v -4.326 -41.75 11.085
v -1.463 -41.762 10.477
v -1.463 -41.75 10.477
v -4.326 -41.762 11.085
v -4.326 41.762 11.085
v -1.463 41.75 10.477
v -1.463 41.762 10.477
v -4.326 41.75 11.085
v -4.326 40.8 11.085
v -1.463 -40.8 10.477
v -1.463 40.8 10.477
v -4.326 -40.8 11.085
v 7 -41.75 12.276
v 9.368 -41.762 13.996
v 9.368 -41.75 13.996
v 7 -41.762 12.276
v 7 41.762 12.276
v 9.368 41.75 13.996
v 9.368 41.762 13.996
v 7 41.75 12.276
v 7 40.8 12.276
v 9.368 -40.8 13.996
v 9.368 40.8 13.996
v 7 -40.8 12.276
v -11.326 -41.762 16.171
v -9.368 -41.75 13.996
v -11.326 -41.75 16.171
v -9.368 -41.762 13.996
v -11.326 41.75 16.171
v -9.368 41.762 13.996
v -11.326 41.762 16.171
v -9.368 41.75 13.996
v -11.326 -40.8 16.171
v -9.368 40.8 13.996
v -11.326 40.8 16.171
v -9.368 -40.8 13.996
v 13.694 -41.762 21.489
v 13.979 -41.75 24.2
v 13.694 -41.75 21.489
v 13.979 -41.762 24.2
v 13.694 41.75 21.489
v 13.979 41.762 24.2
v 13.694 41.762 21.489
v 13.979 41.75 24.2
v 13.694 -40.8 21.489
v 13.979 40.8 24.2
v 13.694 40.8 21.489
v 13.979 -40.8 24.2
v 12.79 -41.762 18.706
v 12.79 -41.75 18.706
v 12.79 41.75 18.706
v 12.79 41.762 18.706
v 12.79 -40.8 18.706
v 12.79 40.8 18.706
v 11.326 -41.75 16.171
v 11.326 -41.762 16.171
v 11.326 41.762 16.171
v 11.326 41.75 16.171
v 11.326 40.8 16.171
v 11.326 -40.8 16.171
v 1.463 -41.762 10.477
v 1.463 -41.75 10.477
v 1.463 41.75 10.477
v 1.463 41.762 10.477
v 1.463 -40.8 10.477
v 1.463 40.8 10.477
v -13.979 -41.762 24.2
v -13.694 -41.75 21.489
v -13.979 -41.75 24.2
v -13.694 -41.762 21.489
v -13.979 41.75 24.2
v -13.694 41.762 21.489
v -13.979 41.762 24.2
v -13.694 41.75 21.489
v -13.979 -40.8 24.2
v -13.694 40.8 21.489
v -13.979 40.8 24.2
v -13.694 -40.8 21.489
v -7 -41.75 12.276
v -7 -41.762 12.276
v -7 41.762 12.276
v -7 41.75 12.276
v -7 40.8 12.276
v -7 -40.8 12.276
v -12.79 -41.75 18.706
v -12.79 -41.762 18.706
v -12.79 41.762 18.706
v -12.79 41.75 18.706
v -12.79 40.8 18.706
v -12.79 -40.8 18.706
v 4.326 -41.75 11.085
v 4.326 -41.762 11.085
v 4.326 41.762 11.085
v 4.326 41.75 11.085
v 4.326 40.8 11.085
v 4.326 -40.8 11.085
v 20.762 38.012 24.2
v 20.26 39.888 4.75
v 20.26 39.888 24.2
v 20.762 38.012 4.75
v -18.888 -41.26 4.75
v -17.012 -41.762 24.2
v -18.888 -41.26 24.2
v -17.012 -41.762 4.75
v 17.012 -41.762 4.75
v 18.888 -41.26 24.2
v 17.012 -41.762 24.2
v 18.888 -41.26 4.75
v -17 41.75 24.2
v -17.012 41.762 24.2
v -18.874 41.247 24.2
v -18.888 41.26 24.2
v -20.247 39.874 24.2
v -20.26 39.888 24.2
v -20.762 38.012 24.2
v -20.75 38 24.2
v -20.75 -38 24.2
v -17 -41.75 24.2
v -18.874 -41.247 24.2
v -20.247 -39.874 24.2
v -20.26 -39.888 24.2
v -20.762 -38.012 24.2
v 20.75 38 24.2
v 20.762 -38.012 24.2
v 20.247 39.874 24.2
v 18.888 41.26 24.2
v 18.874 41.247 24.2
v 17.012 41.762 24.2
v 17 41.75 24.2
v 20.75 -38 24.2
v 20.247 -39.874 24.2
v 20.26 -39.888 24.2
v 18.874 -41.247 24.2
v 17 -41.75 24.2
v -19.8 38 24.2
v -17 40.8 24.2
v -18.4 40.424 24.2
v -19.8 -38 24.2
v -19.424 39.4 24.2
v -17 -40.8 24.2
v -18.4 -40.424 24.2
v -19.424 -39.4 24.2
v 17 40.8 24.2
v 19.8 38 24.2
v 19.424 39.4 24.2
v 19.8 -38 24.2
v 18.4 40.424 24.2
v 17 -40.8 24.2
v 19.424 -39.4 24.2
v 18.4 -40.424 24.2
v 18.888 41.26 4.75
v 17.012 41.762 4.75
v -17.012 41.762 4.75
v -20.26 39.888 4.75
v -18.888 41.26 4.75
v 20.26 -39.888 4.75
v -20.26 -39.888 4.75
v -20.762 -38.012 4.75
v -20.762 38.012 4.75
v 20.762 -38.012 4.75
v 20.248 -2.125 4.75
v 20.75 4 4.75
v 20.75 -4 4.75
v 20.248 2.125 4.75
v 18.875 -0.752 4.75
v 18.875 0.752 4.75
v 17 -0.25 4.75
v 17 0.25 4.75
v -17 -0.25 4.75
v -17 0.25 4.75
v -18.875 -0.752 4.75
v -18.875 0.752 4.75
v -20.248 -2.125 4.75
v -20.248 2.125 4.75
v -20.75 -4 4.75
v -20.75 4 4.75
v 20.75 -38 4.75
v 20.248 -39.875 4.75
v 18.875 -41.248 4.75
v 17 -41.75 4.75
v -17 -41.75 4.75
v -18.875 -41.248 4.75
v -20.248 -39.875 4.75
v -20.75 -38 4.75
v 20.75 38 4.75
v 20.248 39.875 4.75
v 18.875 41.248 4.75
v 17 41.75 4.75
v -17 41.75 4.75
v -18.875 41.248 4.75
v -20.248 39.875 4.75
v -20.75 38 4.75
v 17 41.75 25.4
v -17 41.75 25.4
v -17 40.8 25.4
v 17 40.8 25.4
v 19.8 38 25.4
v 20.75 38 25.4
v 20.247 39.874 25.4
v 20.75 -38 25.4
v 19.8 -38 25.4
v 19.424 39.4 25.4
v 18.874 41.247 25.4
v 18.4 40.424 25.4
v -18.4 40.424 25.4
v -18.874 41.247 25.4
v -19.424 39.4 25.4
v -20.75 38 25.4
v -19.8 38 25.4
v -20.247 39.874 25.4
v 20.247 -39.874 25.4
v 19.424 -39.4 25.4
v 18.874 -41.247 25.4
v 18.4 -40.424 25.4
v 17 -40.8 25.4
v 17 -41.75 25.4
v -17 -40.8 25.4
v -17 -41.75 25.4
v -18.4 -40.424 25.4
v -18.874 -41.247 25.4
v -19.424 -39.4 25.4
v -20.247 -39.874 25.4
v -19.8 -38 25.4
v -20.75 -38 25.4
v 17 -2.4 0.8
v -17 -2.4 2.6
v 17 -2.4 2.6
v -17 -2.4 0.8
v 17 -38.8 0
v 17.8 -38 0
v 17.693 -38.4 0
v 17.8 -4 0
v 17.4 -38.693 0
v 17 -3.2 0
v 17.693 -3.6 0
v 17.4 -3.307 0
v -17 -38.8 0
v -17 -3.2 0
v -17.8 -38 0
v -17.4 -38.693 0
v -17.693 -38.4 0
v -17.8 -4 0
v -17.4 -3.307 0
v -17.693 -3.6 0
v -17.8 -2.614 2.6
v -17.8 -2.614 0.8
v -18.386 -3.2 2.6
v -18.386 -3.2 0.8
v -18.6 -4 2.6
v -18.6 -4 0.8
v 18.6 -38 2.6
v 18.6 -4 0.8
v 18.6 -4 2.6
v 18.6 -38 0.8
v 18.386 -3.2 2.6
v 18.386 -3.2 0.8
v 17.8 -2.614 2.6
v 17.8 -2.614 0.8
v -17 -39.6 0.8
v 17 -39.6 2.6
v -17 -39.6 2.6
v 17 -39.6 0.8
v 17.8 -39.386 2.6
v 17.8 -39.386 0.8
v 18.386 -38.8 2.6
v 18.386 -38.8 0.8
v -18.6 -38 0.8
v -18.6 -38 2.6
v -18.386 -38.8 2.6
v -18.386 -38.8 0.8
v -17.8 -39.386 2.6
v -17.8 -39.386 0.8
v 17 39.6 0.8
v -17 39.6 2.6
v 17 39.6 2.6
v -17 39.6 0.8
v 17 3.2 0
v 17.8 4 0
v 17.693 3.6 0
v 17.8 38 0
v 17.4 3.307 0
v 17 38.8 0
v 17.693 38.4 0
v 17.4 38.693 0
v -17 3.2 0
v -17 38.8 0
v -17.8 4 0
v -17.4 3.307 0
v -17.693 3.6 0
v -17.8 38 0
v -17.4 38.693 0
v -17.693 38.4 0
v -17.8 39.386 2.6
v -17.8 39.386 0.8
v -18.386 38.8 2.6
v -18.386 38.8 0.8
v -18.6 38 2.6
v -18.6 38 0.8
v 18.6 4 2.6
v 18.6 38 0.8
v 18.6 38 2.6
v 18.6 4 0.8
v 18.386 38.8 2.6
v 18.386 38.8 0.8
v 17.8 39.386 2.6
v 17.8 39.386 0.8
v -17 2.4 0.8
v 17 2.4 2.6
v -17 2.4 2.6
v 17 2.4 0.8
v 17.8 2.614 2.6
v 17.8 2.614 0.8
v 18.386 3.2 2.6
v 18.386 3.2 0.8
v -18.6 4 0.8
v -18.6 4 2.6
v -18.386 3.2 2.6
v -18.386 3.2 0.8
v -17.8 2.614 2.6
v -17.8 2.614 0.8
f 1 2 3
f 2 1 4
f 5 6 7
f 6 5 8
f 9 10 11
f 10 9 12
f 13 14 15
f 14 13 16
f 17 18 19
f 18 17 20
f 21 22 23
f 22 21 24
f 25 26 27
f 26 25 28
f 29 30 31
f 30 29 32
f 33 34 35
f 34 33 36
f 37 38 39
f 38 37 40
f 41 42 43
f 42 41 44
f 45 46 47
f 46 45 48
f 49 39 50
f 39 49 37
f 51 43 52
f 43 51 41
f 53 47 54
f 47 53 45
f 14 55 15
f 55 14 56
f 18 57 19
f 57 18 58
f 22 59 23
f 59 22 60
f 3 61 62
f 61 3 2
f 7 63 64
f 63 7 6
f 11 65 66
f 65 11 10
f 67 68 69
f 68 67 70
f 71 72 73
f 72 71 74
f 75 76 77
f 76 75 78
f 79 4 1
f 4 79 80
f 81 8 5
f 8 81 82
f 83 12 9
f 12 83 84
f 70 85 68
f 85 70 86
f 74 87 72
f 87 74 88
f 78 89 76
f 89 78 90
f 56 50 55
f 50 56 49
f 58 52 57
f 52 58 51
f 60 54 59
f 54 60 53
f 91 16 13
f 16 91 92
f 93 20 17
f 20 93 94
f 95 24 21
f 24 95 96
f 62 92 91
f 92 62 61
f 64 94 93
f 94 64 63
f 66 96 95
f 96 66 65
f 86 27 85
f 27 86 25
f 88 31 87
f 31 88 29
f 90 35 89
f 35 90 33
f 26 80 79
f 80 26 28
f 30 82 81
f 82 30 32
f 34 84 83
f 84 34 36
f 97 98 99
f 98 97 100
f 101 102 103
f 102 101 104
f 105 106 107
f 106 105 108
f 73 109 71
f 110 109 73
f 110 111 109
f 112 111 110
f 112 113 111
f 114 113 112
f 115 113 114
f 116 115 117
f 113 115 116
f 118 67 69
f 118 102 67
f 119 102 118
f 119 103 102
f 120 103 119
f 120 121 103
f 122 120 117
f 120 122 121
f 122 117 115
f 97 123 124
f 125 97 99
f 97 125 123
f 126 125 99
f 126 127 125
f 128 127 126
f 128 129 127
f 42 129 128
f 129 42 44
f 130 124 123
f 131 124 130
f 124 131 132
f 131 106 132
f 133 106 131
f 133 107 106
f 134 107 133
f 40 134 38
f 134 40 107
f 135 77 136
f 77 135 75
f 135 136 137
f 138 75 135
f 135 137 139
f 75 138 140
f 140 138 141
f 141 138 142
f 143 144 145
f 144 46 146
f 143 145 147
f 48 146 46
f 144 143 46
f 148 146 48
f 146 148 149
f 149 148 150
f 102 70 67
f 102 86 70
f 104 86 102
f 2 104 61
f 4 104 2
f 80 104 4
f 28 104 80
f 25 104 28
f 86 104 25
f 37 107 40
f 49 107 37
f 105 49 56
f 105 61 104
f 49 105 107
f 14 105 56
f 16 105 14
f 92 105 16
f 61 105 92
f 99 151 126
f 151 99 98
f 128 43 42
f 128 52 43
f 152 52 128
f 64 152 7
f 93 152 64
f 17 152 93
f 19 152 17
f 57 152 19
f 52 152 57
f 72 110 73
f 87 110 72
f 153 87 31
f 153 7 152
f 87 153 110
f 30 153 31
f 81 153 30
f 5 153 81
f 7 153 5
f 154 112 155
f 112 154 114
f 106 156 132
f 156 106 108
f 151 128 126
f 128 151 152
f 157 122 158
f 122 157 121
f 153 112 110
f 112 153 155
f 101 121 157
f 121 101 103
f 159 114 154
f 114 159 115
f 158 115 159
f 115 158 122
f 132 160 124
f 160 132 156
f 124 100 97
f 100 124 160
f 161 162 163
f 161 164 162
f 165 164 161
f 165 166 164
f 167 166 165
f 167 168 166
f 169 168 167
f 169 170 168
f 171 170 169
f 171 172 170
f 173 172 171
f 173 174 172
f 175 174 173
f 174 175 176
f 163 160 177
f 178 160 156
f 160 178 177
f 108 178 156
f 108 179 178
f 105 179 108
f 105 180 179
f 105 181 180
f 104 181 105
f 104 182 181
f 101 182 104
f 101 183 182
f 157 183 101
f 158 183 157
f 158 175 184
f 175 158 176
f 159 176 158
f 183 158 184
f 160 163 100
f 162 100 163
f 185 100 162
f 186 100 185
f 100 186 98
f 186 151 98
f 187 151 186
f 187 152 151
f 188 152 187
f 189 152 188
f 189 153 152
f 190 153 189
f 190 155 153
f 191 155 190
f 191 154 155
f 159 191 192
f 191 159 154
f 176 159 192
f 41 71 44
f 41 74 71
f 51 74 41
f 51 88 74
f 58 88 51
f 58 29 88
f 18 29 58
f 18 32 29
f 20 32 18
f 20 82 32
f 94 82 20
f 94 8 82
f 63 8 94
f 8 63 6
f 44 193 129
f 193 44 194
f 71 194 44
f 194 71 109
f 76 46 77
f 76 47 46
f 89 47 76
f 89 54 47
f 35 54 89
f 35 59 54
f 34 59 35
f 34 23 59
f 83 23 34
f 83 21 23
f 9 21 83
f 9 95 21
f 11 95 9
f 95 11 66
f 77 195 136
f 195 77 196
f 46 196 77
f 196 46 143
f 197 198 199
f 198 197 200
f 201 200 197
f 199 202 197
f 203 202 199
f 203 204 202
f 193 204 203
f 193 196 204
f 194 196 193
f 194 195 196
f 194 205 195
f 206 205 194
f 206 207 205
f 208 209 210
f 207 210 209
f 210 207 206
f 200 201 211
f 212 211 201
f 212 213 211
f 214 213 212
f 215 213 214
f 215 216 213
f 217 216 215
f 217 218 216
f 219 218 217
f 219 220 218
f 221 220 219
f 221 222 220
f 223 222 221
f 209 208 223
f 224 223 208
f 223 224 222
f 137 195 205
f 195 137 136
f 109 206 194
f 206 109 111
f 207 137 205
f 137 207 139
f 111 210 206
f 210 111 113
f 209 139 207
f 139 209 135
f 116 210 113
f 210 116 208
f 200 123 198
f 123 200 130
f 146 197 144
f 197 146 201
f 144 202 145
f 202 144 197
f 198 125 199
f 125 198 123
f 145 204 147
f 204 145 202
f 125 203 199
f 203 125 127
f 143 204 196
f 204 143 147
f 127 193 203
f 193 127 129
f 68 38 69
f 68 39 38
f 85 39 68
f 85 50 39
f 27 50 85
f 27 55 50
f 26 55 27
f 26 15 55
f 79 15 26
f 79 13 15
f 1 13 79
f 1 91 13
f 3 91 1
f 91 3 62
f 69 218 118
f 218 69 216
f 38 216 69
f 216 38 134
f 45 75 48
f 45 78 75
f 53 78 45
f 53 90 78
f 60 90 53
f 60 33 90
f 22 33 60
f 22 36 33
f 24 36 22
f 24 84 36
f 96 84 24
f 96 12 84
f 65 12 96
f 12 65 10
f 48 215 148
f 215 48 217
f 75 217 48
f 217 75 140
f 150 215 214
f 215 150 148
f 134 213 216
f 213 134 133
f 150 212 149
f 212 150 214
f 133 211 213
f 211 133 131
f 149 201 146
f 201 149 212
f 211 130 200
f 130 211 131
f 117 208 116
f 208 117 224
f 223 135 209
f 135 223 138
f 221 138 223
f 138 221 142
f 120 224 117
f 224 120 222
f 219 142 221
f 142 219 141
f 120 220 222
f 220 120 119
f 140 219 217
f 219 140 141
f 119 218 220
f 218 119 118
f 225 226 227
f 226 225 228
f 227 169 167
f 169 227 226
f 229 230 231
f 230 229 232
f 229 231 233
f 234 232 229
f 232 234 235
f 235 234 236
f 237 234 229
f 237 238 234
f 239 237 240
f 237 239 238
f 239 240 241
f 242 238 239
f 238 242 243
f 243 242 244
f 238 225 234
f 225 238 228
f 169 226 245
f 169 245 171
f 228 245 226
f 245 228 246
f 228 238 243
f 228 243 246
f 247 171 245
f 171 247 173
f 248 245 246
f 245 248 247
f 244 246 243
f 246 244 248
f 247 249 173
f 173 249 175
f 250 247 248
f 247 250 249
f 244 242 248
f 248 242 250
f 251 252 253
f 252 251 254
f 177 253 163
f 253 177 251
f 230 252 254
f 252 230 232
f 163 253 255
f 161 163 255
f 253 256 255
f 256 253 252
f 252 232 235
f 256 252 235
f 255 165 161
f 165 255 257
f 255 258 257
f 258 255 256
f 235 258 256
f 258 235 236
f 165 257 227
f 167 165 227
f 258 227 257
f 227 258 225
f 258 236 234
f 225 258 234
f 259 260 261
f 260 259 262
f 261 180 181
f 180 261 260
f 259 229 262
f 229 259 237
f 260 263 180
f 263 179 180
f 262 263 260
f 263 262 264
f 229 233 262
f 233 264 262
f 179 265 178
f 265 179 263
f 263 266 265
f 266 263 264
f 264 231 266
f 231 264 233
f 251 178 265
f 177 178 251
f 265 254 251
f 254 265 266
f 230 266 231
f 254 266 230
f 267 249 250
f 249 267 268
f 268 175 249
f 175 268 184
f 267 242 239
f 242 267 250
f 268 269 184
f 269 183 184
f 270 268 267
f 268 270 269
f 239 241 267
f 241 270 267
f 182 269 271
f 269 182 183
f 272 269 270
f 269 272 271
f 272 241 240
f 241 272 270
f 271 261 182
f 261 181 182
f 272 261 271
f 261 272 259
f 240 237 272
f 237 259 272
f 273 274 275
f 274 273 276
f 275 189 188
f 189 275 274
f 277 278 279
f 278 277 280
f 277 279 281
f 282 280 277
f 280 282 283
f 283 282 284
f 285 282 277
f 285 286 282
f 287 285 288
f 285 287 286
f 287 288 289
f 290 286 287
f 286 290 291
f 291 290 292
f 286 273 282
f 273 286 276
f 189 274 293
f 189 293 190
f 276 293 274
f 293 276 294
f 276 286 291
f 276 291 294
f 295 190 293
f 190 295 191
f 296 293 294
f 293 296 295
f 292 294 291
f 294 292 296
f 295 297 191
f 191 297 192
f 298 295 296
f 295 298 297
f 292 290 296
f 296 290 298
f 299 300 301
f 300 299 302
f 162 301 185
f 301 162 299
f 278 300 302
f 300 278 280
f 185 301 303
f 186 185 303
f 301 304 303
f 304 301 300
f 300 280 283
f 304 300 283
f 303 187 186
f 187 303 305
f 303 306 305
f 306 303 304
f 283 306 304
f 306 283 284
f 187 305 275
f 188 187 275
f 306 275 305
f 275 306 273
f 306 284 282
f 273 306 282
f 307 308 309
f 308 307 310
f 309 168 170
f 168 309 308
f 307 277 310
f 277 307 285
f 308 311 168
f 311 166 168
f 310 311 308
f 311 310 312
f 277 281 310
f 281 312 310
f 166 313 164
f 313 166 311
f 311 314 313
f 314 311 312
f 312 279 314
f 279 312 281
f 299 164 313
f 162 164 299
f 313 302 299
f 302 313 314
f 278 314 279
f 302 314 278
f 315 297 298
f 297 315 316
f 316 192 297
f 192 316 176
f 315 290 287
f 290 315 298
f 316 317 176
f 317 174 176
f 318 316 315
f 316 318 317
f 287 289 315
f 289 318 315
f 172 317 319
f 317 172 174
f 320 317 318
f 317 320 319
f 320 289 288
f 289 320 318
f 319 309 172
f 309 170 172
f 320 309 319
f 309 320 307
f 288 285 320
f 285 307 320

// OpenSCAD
use <entrypoint.scad>


custom_bin(gridx = 1, gridy = 2, gridz = 3, cdivx=1, cdivy=1, divy=0, divx=0, height_internal=0, c_depth=1); 
